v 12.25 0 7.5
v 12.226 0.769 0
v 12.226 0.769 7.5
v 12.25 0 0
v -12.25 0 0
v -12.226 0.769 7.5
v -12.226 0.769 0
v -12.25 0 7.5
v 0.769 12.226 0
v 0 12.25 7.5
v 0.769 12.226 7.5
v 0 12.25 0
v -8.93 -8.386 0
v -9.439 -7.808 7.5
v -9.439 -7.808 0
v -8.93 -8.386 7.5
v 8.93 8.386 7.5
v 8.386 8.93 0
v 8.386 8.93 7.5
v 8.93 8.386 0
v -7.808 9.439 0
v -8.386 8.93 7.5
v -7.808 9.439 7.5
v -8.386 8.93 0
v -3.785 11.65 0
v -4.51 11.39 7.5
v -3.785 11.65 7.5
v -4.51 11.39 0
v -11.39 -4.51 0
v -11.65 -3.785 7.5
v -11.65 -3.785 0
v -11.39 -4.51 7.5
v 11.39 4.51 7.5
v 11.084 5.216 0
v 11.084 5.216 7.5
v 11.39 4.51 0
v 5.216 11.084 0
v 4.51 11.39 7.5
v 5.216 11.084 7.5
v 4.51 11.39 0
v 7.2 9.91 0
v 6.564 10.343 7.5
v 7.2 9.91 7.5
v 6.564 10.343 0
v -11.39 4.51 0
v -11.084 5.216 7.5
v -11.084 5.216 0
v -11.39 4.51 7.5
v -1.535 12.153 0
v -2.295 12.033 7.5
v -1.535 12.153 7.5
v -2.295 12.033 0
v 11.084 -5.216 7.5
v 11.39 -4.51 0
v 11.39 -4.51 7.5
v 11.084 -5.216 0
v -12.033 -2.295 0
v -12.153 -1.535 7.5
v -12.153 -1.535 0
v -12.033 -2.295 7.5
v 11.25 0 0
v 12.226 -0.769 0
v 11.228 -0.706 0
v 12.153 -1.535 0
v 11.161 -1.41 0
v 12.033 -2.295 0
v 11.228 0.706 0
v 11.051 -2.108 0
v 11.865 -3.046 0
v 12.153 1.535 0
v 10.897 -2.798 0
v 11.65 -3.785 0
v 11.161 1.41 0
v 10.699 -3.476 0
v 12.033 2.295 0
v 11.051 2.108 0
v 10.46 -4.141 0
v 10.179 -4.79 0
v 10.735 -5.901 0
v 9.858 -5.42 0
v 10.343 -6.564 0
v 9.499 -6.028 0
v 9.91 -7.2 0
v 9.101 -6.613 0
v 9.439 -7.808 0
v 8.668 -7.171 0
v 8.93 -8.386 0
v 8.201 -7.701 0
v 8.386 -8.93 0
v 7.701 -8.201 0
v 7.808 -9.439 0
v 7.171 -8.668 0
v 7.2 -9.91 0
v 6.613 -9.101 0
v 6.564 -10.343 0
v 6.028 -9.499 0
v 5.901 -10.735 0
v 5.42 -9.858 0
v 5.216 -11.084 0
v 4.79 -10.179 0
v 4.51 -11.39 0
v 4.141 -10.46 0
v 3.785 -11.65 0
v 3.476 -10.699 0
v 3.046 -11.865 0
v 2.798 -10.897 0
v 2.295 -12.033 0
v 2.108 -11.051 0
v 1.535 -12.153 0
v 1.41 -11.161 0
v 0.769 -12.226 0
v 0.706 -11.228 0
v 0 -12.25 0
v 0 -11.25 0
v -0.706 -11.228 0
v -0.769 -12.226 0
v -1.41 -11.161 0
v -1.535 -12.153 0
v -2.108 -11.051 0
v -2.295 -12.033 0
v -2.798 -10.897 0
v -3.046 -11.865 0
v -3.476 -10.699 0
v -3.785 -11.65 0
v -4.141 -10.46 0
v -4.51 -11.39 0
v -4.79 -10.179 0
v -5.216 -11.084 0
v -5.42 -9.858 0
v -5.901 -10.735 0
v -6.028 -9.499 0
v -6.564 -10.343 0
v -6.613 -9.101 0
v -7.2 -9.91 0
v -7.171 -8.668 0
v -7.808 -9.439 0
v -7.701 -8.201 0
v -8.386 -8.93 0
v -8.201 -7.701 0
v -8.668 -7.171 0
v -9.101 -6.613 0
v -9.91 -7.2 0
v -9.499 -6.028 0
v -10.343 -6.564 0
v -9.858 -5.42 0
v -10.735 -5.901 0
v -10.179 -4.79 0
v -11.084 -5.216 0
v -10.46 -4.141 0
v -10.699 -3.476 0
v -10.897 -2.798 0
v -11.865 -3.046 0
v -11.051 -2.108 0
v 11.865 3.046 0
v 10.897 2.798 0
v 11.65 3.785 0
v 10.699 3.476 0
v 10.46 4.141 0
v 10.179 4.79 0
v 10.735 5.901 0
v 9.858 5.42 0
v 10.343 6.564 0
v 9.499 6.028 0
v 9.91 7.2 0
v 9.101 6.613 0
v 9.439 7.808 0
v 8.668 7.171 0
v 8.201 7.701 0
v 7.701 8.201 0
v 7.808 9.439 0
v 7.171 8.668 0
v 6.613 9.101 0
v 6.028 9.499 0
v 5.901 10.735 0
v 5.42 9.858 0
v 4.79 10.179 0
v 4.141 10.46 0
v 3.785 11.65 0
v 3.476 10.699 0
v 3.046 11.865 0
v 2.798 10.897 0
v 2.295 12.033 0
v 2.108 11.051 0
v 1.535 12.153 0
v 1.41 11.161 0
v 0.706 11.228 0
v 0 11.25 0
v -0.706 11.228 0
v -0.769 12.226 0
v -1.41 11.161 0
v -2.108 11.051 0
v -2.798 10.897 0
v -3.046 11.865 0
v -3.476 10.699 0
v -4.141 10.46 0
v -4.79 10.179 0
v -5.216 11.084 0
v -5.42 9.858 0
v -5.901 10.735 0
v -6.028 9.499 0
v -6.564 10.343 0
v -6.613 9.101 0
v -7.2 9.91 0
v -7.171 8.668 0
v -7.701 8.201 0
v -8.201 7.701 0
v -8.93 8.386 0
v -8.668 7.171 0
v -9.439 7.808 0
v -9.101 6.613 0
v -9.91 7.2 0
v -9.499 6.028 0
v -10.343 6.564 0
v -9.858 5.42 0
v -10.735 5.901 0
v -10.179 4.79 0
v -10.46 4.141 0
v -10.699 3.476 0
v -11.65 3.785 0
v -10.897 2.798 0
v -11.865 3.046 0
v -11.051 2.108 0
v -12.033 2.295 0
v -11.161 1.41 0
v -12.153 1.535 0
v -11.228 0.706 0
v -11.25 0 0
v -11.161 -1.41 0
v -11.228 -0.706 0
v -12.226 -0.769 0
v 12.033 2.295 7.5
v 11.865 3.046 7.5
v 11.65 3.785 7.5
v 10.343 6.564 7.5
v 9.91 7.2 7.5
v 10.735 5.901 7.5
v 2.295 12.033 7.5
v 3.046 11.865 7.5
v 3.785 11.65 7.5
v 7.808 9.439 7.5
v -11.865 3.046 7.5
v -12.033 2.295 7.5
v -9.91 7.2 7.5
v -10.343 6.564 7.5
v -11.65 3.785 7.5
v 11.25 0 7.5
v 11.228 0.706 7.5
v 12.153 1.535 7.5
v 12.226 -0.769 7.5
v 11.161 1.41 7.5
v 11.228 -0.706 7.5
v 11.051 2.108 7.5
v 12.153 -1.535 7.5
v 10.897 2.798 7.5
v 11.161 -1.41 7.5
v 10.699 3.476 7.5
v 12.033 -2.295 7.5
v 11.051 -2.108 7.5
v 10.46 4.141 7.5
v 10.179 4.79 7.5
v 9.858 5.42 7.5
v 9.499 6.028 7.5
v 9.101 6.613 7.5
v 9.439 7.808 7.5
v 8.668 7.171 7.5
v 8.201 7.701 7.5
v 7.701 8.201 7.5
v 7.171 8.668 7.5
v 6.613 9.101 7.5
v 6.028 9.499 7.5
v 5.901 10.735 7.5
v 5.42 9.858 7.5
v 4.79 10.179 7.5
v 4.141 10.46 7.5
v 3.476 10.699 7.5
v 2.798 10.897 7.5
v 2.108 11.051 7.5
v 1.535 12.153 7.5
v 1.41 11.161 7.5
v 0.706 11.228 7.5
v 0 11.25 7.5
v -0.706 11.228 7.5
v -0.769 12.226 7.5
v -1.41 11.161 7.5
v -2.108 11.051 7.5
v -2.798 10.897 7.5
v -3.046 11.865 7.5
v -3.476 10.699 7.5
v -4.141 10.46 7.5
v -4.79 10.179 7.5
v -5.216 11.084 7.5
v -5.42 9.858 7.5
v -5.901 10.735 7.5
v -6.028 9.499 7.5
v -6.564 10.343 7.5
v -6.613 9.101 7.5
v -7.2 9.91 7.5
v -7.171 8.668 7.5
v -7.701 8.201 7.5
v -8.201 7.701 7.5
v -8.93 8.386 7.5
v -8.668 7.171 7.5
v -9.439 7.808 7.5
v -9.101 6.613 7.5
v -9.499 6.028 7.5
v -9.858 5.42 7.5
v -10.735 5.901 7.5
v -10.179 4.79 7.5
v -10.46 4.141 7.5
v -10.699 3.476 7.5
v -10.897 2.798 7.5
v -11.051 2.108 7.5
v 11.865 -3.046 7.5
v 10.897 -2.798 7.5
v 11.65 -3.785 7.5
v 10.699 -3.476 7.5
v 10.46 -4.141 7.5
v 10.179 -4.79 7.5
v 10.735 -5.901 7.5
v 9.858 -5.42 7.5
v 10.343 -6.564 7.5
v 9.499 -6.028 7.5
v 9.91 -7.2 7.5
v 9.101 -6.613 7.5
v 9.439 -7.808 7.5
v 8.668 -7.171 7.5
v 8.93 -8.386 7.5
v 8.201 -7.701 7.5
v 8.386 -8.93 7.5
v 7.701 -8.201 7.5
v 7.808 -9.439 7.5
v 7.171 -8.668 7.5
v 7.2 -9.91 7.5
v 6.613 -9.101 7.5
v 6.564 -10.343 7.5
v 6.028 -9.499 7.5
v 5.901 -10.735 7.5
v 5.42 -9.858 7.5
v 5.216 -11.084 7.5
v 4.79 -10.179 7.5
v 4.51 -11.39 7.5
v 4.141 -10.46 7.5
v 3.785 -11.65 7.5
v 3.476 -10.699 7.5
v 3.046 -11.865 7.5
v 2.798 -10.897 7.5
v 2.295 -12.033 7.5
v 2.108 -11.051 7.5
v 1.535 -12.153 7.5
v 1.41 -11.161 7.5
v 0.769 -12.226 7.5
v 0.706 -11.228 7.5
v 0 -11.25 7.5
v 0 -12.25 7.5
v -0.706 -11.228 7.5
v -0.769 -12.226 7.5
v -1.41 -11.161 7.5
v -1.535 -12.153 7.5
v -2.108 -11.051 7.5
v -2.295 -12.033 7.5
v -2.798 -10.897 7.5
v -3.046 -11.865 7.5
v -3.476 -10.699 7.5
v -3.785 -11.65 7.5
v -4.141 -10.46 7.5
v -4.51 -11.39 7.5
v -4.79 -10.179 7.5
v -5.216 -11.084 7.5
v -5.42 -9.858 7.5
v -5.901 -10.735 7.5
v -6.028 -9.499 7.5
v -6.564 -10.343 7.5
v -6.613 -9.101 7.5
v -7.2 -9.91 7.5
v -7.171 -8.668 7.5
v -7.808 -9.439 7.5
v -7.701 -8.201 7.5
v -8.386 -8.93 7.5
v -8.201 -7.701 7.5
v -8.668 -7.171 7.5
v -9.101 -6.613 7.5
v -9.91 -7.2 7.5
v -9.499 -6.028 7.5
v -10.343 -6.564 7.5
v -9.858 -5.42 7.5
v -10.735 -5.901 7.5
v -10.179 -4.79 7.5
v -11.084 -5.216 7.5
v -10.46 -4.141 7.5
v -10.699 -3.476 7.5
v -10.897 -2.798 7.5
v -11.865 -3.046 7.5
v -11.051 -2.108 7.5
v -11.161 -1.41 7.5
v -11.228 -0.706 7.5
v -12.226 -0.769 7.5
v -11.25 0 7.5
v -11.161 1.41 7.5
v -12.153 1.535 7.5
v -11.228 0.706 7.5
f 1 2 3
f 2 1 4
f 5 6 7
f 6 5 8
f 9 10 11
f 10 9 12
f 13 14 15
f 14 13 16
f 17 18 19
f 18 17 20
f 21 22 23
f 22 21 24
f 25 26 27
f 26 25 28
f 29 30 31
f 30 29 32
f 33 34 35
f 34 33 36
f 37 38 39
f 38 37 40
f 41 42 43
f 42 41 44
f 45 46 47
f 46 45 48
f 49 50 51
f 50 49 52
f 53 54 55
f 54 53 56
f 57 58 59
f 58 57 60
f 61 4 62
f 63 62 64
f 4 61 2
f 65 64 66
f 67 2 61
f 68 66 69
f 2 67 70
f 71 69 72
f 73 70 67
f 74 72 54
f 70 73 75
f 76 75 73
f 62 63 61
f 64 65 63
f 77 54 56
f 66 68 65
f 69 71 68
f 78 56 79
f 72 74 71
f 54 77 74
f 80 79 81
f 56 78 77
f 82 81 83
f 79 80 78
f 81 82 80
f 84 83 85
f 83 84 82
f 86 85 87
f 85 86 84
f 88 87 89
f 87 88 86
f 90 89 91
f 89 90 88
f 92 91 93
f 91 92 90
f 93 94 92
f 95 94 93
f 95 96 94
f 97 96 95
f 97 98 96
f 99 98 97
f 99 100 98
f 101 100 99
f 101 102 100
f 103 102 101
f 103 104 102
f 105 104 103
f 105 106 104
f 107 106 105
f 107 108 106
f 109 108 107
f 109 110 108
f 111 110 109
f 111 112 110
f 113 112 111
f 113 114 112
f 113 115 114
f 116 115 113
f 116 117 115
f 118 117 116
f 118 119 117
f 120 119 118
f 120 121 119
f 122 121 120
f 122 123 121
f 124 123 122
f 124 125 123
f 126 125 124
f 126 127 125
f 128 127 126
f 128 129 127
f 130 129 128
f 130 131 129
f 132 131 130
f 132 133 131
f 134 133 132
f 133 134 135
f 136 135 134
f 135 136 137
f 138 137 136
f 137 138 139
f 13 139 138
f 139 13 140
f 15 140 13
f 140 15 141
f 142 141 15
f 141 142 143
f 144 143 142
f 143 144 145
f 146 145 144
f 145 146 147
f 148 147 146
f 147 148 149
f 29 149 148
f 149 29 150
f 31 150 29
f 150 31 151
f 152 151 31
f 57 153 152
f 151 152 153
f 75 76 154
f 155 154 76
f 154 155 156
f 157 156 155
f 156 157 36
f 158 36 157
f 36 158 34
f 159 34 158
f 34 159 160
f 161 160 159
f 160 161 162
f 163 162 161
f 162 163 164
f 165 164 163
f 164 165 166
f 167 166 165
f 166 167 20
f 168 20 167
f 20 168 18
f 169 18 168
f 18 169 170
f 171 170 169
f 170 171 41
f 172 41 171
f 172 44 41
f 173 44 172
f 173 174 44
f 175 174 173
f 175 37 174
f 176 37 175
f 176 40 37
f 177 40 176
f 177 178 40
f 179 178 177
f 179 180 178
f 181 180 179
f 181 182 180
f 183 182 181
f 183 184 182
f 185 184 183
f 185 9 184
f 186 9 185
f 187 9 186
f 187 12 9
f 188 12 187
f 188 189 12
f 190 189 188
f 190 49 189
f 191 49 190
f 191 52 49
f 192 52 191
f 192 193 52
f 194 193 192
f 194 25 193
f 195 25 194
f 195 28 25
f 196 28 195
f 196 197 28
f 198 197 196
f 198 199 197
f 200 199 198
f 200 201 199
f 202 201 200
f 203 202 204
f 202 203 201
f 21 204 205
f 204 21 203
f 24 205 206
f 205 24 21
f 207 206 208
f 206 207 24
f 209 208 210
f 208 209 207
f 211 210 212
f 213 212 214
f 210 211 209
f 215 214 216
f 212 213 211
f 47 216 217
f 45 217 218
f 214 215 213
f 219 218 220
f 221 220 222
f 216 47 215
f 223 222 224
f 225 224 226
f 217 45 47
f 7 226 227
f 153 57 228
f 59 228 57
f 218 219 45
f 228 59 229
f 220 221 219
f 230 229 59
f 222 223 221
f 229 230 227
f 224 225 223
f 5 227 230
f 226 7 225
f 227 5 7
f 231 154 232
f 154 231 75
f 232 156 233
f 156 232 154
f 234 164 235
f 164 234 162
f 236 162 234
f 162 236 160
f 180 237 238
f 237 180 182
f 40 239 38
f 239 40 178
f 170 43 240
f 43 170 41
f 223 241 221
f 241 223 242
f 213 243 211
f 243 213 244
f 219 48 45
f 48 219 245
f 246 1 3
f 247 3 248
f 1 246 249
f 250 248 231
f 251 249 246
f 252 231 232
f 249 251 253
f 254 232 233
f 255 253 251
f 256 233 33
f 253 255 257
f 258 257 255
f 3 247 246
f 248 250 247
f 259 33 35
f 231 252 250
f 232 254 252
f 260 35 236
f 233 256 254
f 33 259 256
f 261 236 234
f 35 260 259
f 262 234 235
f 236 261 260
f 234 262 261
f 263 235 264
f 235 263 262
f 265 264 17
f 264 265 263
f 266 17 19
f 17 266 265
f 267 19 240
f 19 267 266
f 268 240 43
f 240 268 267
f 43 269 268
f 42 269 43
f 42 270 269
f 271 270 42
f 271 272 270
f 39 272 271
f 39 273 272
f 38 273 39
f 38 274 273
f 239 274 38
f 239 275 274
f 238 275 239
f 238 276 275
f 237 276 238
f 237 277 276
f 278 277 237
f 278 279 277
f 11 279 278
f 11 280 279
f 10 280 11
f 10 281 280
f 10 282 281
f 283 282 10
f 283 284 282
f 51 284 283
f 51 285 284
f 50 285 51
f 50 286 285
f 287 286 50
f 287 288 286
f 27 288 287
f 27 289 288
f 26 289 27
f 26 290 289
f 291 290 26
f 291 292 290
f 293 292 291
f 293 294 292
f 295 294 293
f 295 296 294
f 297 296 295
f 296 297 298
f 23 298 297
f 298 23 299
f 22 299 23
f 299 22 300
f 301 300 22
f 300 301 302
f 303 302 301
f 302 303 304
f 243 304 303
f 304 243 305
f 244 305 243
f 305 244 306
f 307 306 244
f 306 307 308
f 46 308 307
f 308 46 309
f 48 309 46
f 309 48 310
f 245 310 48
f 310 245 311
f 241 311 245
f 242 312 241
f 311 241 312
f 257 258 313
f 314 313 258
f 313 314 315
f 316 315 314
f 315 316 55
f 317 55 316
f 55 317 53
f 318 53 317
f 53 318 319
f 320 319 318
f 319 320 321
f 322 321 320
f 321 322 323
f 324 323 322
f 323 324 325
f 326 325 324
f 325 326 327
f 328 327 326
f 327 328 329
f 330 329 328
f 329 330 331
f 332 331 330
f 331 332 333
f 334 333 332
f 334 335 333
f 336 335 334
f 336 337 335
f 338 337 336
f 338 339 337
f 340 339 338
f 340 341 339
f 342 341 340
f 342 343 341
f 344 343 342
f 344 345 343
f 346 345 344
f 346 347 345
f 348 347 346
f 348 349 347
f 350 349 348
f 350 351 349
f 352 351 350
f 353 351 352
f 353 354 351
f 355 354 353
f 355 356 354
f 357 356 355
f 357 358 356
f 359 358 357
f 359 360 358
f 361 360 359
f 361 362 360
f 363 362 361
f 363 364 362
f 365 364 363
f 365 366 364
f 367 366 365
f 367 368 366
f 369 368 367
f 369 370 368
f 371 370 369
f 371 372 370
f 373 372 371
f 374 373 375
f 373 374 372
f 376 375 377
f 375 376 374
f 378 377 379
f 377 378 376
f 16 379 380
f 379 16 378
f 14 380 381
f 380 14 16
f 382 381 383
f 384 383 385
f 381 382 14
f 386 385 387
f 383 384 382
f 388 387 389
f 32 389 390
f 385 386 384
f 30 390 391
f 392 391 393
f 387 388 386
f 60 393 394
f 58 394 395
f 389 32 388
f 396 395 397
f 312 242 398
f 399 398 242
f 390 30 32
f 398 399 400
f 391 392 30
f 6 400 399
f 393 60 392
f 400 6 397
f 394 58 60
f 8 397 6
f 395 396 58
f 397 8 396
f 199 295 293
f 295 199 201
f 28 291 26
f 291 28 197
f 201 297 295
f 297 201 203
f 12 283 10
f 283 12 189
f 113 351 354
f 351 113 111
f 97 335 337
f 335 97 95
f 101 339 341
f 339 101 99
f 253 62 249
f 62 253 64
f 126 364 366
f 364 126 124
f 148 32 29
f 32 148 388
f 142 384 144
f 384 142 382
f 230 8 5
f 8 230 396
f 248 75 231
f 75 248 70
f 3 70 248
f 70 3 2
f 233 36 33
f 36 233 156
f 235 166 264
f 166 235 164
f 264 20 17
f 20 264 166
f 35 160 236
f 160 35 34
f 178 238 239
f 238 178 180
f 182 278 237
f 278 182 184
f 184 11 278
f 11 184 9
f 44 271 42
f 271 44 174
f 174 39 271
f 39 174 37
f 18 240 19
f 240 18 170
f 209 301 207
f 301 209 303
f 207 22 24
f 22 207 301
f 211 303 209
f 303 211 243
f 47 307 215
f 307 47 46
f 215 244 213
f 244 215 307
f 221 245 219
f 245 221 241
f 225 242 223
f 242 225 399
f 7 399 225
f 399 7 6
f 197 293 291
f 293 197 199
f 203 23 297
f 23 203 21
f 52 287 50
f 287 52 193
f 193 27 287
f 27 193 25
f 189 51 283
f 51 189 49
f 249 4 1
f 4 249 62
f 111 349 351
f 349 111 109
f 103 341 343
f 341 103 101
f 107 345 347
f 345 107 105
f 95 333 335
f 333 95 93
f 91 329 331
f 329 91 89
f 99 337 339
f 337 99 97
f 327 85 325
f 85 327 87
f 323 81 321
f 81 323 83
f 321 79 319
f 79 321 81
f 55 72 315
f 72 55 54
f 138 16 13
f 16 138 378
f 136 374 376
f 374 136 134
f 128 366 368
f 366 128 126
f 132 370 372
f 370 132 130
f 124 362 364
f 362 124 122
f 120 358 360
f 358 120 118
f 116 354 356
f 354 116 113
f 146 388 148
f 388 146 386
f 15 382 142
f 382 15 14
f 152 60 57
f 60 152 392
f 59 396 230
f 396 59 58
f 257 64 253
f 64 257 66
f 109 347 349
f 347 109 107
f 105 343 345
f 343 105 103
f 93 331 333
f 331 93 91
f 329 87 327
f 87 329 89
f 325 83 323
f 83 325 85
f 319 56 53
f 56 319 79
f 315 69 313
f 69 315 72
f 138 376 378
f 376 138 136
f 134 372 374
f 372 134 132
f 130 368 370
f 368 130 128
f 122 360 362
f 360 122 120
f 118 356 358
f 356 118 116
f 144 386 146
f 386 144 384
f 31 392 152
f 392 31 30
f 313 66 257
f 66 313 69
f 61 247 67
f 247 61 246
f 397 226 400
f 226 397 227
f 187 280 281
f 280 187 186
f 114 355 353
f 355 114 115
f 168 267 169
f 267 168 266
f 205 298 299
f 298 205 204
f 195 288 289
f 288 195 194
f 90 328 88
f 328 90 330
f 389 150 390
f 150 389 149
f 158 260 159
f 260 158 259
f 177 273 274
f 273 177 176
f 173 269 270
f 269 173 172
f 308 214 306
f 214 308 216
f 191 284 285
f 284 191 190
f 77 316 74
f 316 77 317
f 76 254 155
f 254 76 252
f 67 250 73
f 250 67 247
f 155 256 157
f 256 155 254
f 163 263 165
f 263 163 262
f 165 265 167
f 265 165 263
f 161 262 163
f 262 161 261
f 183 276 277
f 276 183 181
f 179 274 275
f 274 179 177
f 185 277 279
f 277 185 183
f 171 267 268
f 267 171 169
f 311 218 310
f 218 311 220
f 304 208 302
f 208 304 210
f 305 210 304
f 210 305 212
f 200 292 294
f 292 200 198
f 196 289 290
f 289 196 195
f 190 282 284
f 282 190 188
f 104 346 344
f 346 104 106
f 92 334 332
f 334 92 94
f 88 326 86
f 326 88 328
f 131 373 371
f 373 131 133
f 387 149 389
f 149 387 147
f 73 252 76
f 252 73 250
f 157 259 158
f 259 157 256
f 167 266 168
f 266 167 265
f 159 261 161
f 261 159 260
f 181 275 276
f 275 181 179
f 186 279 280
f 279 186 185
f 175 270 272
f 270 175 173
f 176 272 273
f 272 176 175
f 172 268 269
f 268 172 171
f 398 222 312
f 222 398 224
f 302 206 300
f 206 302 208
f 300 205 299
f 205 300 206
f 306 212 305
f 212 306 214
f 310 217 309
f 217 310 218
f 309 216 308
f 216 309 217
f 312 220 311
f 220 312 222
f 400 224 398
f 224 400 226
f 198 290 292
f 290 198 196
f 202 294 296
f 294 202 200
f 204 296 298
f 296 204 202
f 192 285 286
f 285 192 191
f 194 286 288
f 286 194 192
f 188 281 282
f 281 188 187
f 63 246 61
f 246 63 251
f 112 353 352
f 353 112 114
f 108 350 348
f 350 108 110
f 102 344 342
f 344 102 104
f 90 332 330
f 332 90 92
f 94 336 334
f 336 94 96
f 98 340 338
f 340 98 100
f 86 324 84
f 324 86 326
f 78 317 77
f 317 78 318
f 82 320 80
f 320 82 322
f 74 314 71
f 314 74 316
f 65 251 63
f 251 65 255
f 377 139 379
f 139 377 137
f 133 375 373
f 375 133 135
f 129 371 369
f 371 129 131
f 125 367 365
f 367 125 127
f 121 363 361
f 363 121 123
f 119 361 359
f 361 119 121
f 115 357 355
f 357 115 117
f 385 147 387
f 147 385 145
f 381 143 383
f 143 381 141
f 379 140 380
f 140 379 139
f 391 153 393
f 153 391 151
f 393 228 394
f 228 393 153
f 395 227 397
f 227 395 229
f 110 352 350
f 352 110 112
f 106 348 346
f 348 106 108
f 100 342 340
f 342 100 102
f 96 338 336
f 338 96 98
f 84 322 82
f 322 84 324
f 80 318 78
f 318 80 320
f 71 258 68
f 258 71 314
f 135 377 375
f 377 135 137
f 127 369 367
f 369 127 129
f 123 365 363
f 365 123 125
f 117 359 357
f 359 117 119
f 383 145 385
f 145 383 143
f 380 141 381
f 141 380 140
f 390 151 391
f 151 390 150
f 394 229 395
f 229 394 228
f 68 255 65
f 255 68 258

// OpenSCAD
outer_diam = 24.5;
inner_diam = 22.5;
outer_rad = outer_diam / 2;
inner_rad = inner_diam / 2;
height = 7.5;

difference()
{
    cylinder(h = height, r = outer_rad, center = false, $fn = 100);
    cylinder(h = height, r = inner_rad, center = false, $fn = 100);
}
